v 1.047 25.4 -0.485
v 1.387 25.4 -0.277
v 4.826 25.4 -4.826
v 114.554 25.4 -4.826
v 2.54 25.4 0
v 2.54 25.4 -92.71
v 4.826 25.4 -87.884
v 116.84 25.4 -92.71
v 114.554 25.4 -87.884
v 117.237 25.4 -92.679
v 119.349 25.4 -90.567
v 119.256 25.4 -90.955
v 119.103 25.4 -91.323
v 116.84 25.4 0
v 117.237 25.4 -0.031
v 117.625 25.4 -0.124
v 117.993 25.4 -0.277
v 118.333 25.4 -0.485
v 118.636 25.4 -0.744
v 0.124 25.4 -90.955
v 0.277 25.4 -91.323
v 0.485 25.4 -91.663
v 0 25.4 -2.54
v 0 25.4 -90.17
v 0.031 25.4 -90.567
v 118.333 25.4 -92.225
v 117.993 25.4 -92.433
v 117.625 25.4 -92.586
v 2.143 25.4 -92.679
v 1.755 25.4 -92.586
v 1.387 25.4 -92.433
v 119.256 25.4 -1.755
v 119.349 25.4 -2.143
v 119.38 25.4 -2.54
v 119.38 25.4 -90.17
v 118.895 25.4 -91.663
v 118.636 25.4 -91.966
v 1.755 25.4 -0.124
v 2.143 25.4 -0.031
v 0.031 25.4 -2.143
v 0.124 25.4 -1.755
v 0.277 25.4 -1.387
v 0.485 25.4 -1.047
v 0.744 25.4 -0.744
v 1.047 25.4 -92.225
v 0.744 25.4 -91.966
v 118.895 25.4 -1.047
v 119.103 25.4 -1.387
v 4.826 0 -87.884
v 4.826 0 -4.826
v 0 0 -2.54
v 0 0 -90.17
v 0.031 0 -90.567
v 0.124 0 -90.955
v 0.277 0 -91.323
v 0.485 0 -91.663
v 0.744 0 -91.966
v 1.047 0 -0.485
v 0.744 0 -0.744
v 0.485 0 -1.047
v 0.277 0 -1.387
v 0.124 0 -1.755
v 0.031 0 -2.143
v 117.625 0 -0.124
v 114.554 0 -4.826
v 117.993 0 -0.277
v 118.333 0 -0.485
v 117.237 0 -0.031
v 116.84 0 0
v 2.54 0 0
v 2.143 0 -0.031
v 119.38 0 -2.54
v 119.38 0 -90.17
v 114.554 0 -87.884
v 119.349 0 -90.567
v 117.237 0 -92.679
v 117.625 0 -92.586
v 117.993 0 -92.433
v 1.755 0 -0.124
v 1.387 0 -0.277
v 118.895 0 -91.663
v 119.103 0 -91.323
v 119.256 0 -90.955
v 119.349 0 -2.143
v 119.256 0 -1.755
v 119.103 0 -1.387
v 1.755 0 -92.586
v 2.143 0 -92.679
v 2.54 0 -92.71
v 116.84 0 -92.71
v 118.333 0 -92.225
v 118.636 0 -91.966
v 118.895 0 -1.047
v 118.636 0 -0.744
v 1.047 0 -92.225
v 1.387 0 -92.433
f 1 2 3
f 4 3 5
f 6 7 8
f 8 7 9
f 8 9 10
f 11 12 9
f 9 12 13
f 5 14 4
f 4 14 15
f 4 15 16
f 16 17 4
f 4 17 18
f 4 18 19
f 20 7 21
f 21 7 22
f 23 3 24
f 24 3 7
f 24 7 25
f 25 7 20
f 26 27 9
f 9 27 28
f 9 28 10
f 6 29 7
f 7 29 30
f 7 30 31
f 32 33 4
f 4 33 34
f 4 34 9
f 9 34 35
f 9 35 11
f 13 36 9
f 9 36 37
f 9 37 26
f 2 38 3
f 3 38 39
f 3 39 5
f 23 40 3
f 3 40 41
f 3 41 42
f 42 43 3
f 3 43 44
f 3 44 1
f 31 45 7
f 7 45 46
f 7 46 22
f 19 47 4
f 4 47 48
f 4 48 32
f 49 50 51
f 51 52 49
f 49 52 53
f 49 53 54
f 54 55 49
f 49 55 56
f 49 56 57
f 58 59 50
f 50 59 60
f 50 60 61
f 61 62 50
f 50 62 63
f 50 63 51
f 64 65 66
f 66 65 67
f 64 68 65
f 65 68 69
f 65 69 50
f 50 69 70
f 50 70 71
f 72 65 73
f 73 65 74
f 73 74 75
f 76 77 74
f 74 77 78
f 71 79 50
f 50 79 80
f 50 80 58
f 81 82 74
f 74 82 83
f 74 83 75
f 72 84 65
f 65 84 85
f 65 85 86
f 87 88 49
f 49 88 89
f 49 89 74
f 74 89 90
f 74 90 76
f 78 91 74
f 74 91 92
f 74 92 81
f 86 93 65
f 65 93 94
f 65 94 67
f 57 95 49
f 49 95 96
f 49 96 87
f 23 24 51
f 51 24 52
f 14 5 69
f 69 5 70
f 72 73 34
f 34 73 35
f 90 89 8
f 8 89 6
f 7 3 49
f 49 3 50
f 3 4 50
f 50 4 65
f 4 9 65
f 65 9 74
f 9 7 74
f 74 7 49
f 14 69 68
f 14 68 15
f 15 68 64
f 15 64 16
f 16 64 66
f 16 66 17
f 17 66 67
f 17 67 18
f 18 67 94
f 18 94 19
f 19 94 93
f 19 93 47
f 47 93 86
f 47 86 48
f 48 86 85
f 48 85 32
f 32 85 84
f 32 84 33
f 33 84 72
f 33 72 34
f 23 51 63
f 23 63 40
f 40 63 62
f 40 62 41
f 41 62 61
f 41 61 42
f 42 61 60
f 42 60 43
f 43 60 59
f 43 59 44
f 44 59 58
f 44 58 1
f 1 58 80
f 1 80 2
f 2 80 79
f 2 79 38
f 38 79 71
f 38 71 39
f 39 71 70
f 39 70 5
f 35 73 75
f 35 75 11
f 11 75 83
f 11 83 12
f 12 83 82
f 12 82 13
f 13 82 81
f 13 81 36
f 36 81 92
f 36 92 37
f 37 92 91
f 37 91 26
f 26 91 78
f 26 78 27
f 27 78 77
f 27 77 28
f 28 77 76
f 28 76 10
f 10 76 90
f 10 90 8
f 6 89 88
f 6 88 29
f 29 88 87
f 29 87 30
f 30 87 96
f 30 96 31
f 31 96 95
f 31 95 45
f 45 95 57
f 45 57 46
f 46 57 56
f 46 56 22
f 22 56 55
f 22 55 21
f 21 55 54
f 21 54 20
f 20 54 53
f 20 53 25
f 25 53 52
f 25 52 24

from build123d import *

# Parameters (mm, degrees)
SKETCH2_W           = 119.38
SKETCH2_H           = 92.71
SKETCH2_W_2         = 109.728
SKETCH2_H_2         = 83.058
BOSS_EXTRUDE1_DEPTH = 25.4
FILLET1_R           = 2.54


with BuildPart() as part:
    # Sketch2 → Boss-Extrude1 (new body)
    with BuildSketch(Plane(origin=(0, 0, 0), x_dir=(1, 0, 0), z_dir=(0, 1, 0))):
        with Locations((59.69, 46.355)):
            Rectangle(SKETCH2_W, SKETCH2_H)
        with Locations((59.69, 46.355)):
            Rectangle(SKETCH2_W_2, SKETCH2_H_2, mode=Mode.SUBTRACT)
    extrude(amount=BOSS_EXTRUDE1_DEPTH)

    # Fillet1
    fillet1_edges = [part.edges().sort_by_distance(p)[0] for p in [
        (0, 12.7, -92.71),
        (119.38, 12.7, -92.71),
        (119.38, 12.7, 0),
        (0, 12.7, 0),
    ]]
    fillet(fillet1_edges, radius=FILLET1_R)


solid = part.part
